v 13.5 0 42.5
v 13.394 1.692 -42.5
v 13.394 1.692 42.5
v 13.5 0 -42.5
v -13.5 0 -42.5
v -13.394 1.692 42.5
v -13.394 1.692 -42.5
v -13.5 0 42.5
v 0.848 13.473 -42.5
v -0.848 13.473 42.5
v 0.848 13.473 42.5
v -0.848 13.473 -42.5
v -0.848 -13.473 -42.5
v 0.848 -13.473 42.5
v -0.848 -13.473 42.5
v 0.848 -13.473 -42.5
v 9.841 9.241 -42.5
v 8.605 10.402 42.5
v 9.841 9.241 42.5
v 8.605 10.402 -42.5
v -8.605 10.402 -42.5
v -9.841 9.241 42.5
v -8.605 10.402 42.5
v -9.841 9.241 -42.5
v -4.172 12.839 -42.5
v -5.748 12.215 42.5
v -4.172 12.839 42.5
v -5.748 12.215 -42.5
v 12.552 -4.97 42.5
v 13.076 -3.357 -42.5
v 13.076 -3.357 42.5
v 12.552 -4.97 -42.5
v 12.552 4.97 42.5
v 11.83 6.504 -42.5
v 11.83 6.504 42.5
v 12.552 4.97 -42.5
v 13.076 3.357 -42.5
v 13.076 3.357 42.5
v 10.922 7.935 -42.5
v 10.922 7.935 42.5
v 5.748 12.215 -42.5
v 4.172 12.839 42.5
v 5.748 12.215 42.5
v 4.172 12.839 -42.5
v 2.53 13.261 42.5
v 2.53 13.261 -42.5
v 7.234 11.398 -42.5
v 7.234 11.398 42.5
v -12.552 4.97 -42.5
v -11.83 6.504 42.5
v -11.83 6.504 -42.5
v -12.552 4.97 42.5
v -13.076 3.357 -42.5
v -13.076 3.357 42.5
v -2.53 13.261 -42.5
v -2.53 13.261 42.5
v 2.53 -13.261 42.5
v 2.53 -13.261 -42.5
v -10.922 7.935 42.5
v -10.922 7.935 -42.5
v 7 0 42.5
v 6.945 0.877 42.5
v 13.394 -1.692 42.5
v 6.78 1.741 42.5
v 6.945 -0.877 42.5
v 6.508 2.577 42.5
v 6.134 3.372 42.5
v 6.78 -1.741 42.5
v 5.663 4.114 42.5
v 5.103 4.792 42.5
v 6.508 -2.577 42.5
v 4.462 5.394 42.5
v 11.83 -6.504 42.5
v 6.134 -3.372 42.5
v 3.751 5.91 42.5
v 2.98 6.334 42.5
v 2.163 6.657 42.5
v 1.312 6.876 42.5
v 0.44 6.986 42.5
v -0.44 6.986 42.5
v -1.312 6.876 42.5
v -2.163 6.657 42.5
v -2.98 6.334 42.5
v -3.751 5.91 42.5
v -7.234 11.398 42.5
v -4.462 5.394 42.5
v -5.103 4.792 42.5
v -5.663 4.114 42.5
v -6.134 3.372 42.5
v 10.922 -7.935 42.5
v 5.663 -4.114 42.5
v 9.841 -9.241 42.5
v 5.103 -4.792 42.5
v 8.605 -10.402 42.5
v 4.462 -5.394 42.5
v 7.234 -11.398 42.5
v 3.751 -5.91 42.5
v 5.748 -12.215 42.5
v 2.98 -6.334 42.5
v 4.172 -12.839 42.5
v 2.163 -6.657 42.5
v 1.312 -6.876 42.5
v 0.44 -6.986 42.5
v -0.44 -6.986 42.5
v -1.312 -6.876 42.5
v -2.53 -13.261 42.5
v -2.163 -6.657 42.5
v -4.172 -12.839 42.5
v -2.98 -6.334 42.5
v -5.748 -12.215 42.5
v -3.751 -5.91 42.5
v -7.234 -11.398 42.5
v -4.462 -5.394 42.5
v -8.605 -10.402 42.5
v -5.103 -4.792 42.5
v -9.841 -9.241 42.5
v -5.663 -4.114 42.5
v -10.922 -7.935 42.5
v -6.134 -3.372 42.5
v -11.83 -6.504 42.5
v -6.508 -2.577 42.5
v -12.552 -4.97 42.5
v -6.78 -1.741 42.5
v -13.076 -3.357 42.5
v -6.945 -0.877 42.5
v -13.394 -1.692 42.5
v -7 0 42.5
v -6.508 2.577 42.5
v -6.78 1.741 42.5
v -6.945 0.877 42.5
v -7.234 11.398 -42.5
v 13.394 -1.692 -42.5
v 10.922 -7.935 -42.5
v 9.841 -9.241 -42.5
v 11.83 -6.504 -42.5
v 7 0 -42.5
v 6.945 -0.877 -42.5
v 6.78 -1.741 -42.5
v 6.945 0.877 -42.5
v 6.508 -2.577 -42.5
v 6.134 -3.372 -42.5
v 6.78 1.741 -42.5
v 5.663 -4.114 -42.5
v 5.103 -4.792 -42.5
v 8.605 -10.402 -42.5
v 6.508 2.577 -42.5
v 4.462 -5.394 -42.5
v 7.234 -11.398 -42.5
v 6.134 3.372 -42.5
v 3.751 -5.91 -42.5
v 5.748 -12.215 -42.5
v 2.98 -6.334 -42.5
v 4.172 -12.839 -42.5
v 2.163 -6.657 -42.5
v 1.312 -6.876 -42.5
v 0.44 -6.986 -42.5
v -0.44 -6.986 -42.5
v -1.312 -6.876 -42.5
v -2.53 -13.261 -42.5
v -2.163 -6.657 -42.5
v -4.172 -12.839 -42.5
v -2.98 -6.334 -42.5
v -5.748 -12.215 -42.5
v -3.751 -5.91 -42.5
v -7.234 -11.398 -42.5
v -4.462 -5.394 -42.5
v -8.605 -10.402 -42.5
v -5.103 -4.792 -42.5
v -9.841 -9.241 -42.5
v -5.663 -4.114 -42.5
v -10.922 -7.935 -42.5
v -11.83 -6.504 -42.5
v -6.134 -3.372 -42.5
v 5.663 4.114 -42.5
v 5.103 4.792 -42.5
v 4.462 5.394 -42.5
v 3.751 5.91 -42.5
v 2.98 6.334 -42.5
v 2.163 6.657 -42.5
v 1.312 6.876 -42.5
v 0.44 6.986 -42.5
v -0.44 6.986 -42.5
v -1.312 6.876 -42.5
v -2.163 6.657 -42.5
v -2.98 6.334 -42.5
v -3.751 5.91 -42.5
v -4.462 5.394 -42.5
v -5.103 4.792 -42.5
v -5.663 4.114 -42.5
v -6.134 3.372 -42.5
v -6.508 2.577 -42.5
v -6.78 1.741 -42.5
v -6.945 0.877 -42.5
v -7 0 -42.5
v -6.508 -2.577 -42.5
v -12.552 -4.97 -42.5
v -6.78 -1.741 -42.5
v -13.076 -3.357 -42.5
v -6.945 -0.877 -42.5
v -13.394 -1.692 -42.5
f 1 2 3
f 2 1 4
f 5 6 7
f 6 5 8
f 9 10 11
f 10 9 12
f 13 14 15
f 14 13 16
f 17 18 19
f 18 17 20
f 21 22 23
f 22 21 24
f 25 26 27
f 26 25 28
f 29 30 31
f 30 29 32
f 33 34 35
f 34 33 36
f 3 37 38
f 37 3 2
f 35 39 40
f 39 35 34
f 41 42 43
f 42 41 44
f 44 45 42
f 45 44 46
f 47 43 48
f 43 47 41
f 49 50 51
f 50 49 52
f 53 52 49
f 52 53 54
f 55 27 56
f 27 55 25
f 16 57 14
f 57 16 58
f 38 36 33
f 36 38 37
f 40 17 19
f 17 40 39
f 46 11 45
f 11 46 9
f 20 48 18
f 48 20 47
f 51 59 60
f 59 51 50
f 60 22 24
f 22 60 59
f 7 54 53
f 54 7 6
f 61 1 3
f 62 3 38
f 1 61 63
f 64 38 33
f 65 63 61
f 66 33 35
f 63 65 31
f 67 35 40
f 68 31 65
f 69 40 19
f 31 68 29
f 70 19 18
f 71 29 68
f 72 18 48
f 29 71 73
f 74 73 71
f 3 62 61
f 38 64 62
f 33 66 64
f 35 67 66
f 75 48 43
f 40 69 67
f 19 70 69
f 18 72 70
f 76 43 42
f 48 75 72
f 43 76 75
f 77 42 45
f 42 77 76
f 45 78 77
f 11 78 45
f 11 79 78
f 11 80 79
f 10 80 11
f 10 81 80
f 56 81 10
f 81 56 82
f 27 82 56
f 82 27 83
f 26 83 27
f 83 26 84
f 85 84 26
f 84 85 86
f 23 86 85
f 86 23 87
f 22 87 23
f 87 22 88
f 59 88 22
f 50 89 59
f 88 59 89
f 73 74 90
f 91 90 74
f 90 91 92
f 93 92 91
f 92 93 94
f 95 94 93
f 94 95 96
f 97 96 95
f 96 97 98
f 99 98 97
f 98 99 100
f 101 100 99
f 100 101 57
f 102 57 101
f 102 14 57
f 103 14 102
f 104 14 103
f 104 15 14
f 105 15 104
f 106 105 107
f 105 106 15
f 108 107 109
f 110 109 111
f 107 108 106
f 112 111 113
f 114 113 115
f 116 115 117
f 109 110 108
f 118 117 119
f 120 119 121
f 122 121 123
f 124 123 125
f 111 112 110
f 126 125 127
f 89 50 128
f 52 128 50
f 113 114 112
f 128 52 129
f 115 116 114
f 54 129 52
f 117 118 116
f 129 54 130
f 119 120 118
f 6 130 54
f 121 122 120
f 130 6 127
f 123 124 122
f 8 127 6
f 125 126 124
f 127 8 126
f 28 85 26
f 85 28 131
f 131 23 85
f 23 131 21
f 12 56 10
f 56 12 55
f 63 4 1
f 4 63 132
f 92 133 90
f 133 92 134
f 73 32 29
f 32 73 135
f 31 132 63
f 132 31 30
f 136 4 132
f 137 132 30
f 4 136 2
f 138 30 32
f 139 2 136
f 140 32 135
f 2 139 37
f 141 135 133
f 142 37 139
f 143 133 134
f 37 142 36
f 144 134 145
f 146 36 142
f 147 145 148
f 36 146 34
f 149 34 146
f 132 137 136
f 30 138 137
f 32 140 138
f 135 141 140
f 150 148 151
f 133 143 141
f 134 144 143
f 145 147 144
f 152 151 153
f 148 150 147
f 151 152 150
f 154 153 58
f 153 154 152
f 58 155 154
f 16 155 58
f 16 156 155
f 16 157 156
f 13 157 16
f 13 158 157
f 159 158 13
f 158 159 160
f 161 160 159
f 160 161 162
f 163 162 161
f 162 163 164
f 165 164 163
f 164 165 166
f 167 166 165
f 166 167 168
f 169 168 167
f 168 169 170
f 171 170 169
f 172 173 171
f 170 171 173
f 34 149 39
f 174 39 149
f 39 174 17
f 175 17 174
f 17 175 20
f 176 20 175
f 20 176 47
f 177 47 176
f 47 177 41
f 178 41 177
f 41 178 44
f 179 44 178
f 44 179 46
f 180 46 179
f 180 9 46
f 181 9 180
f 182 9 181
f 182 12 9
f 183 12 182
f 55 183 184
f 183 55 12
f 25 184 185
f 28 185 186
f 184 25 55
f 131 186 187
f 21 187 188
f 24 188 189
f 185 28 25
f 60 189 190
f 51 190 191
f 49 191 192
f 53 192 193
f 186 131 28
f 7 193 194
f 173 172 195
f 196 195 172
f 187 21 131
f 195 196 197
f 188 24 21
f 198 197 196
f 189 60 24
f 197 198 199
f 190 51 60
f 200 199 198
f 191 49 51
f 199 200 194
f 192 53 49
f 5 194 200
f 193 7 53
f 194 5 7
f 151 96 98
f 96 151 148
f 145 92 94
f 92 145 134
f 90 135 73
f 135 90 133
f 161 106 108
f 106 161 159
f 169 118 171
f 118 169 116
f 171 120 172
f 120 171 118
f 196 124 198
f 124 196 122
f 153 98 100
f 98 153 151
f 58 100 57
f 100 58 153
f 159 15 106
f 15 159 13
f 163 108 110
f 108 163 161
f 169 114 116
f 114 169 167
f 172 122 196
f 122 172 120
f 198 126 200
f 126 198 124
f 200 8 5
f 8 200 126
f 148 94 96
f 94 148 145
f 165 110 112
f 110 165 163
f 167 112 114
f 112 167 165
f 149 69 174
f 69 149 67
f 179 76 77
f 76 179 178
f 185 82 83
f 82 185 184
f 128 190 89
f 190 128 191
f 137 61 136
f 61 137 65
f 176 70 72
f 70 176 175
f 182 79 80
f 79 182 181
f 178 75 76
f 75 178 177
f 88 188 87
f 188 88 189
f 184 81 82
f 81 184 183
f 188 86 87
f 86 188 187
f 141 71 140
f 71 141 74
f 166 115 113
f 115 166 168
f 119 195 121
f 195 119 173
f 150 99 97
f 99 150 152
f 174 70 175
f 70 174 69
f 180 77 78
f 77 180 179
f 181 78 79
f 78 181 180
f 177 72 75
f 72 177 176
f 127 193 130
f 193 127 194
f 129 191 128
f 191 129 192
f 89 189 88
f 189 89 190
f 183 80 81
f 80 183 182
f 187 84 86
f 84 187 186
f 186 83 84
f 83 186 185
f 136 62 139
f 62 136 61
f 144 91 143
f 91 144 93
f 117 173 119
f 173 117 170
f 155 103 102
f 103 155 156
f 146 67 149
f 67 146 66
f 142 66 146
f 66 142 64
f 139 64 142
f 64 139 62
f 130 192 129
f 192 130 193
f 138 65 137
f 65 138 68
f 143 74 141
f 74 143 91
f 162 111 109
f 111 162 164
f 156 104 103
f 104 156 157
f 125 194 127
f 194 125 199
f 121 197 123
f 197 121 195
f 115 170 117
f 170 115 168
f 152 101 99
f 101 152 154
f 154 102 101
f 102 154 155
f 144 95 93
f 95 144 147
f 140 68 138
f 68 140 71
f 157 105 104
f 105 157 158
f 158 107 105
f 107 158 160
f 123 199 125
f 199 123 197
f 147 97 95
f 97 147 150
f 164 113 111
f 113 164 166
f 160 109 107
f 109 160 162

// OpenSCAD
$fn = 50;


difference() {
	union() {
		translate(v = [0, 0, -42.5000000000]) {
			cylinder(h = 85, r = 13.5000000000);
		}
	}
	union() {
		translate(v = [0, 0, -100.0000000000]) {
			cylinder(h = 200, r = 7);
		}
	}
}
